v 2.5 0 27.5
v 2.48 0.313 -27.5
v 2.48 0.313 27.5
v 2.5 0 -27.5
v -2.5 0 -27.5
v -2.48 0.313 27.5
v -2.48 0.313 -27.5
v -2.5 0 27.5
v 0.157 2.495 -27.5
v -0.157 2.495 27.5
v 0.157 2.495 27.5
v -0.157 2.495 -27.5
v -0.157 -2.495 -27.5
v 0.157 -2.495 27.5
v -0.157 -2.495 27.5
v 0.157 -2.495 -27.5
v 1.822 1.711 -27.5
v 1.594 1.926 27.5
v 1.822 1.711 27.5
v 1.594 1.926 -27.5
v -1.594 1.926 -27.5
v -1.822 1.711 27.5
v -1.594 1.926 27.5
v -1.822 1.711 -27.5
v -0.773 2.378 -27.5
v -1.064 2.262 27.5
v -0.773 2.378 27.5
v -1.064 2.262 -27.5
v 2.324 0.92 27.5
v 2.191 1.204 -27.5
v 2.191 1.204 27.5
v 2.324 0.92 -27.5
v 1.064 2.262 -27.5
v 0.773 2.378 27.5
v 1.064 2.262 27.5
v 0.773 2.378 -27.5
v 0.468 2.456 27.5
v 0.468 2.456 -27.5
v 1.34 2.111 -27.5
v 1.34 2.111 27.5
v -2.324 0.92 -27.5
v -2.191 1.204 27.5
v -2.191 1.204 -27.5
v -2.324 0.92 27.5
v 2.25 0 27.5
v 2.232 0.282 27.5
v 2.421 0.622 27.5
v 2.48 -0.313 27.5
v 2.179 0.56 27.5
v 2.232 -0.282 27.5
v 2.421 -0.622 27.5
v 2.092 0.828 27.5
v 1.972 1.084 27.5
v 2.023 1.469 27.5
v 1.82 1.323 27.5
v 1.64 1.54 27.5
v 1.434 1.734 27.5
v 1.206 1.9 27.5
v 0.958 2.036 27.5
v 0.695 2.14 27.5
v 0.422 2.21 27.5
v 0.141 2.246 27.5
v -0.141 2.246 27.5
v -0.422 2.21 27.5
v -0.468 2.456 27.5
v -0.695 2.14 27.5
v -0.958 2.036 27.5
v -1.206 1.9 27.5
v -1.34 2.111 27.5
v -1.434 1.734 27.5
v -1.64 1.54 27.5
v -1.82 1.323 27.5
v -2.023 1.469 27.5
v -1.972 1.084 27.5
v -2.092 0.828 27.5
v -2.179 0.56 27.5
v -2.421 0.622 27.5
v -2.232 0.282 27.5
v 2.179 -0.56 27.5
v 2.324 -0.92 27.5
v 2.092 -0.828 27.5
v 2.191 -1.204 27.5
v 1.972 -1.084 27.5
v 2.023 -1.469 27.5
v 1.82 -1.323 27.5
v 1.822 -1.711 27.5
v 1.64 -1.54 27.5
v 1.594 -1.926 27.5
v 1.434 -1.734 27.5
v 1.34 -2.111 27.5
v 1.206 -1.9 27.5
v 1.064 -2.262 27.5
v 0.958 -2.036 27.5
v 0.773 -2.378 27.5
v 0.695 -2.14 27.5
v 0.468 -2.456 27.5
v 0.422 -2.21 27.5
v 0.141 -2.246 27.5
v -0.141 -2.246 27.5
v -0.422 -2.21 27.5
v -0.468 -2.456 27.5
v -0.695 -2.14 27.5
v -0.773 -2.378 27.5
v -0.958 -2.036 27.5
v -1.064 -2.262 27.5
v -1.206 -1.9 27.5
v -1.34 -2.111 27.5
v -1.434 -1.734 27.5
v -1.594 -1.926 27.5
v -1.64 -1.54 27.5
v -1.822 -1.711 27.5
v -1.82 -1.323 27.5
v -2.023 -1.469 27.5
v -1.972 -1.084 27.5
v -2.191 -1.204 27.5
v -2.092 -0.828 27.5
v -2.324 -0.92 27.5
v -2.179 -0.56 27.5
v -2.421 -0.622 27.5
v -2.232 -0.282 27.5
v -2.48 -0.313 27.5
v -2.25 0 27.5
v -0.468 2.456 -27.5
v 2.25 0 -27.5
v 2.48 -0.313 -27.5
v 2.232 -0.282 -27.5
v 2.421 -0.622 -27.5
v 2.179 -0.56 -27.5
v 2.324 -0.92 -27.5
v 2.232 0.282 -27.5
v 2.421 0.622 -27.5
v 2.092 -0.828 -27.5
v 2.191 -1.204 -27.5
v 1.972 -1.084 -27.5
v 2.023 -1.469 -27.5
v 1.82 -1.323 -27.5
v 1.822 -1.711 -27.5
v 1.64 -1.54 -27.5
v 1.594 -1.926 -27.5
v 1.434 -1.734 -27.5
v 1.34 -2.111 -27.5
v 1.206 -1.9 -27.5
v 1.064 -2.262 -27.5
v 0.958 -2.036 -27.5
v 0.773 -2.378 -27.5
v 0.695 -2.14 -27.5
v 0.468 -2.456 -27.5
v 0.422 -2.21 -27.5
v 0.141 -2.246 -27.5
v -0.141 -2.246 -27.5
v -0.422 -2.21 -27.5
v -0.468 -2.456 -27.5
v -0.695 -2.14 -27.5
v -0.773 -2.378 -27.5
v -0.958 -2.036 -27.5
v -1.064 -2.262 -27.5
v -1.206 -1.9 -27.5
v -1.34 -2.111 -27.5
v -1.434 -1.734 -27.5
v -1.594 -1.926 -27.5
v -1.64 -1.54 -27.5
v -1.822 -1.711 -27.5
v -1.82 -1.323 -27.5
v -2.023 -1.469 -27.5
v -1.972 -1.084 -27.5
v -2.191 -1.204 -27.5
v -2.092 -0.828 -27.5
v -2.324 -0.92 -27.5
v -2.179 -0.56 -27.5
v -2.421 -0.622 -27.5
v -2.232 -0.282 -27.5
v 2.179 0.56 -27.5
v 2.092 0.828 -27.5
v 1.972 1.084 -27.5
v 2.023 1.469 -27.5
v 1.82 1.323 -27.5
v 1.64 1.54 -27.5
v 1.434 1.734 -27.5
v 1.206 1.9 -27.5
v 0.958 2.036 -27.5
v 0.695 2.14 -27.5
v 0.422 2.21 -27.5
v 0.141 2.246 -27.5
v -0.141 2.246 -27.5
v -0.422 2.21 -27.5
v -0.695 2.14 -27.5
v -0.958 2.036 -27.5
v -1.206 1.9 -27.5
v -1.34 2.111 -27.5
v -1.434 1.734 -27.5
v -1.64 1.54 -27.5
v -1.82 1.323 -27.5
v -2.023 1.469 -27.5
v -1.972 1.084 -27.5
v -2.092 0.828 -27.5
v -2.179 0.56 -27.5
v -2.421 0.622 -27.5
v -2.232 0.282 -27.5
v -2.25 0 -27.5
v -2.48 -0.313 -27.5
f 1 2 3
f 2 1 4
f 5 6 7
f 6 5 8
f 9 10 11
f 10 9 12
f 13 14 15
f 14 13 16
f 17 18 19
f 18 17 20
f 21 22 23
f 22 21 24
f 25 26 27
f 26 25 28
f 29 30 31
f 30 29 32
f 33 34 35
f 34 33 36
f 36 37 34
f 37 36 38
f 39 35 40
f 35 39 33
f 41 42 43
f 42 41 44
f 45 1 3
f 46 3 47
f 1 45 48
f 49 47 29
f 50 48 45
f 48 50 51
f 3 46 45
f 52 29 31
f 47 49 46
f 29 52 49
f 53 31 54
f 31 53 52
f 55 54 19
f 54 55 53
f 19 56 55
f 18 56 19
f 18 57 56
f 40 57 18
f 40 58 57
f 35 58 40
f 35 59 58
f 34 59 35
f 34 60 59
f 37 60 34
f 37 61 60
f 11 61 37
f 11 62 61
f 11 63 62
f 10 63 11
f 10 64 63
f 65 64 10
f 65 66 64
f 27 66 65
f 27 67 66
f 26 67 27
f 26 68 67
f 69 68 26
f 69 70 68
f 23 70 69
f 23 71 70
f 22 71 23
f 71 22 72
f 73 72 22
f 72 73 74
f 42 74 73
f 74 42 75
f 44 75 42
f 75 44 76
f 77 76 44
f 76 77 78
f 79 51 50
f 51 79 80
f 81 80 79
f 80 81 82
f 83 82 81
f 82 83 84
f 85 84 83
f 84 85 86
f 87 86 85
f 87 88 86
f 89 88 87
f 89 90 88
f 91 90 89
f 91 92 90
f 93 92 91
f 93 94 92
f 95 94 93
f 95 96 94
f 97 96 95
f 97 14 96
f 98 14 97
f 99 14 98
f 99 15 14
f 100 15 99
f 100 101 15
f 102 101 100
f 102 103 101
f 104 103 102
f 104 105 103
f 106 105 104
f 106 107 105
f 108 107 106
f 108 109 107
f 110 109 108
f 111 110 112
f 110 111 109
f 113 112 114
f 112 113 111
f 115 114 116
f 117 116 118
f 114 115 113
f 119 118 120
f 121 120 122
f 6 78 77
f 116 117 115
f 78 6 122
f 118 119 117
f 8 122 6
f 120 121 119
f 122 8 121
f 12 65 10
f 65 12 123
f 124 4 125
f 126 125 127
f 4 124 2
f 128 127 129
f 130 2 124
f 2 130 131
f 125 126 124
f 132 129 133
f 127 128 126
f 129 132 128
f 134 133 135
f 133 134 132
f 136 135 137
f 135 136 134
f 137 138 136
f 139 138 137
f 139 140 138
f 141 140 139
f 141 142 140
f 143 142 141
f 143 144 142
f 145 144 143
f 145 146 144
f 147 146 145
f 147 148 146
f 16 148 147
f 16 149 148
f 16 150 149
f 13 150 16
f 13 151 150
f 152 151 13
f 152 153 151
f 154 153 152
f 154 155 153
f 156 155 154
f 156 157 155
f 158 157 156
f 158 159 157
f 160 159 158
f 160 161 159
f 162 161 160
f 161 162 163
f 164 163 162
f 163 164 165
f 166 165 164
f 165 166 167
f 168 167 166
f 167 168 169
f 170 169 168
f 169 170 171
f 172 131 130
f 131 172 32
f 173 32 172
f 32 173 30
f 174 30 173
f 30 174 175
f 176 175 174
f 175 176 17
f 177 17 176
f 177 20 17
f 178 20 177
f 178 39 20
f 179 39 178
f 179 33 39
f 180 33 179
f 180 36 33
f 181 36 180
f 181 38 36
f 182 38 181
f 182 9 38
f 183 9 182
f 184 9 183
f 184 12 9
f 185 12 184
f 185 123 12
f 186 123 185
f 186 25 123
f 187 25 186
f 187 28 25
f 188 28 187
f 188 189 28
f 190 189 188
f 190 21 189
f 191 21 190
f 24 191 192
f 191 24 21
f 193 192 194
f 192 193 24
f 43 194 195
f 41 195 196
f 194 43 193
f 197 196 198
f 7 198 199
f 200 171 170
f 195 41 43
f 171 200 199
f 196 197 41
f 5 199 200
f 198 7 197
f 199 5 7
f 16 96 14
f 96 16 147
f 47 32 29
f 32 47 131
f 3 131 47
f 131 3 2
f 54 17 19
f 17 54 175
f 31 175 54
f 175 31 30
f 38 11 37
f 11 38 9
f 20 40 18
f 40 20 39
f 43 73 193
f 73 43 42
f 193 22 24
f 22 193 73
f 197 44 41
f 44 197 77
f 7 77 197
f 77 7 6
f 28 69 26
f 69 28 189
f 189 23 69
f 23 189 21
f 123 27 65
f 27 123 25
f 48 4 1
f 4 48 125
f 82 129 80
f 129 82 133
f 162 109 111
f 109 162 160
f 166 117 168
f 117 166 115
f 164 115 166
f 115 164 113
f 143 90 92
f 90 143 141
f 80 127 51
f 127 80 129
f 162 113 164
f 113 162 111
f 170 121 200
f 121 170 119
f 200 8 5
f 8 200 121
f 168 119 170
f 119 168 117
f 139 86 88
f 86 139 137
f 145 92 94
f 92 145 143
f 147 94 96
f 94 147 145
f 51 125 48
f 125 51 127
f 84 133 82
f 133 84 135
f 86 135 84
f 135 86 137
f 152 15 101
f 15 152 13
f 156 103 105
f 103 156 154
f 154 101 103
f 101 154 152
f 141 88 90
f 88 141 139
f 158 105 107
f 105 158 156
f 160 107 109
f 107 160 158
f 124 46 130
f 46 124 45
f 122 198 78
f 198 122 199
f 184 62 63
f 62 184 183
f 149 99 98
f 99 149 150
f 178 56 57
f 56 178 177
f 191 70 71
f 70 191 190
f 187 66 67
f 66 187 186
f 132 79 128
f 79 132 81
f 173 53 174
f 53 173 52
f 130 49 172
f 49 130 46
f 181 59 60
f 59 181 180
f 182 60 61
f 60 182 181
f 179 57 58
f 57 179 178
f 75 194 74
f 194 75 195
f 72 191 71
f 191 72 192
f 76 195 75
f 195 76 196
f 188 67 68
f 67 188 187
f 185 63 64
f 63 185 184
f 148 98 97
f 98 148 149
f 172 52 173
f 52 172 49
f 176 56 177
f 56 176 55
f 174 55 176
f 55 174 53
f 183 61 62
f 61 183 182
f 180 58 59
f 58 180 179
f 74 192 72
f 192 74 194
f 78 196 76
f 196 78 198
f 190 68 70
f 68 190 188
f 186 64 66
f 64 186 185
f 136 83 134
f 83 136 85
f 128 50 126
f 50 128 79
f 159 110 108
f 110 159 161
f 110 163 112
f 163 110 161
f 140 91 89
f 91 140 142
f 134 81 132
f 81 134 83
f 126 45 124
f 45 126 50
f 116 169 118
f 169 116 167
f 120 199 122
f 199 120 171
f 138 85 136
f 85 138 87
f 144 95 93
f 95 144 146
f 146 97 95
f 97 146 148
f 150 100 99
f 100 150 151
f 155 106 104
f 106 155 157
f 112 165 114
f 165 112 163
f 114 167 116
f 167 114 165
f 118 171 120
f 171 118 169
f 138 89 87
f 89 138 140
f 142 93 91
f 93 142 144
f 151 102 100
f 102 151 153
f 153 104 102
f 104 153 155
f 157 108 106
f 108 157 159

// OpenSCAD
$fn = 50;


difference() {
	union() {
		translate(v = [0, 0, -27.5000000000]) {
			cylinder(h = 55, r = 2.5000000000);
		}
	}
	union() {
		translate(v = [0, 0, -100.0000000000]) {
			cylinder(h = 200, r = 2.2500000000);
		}
	}
}
